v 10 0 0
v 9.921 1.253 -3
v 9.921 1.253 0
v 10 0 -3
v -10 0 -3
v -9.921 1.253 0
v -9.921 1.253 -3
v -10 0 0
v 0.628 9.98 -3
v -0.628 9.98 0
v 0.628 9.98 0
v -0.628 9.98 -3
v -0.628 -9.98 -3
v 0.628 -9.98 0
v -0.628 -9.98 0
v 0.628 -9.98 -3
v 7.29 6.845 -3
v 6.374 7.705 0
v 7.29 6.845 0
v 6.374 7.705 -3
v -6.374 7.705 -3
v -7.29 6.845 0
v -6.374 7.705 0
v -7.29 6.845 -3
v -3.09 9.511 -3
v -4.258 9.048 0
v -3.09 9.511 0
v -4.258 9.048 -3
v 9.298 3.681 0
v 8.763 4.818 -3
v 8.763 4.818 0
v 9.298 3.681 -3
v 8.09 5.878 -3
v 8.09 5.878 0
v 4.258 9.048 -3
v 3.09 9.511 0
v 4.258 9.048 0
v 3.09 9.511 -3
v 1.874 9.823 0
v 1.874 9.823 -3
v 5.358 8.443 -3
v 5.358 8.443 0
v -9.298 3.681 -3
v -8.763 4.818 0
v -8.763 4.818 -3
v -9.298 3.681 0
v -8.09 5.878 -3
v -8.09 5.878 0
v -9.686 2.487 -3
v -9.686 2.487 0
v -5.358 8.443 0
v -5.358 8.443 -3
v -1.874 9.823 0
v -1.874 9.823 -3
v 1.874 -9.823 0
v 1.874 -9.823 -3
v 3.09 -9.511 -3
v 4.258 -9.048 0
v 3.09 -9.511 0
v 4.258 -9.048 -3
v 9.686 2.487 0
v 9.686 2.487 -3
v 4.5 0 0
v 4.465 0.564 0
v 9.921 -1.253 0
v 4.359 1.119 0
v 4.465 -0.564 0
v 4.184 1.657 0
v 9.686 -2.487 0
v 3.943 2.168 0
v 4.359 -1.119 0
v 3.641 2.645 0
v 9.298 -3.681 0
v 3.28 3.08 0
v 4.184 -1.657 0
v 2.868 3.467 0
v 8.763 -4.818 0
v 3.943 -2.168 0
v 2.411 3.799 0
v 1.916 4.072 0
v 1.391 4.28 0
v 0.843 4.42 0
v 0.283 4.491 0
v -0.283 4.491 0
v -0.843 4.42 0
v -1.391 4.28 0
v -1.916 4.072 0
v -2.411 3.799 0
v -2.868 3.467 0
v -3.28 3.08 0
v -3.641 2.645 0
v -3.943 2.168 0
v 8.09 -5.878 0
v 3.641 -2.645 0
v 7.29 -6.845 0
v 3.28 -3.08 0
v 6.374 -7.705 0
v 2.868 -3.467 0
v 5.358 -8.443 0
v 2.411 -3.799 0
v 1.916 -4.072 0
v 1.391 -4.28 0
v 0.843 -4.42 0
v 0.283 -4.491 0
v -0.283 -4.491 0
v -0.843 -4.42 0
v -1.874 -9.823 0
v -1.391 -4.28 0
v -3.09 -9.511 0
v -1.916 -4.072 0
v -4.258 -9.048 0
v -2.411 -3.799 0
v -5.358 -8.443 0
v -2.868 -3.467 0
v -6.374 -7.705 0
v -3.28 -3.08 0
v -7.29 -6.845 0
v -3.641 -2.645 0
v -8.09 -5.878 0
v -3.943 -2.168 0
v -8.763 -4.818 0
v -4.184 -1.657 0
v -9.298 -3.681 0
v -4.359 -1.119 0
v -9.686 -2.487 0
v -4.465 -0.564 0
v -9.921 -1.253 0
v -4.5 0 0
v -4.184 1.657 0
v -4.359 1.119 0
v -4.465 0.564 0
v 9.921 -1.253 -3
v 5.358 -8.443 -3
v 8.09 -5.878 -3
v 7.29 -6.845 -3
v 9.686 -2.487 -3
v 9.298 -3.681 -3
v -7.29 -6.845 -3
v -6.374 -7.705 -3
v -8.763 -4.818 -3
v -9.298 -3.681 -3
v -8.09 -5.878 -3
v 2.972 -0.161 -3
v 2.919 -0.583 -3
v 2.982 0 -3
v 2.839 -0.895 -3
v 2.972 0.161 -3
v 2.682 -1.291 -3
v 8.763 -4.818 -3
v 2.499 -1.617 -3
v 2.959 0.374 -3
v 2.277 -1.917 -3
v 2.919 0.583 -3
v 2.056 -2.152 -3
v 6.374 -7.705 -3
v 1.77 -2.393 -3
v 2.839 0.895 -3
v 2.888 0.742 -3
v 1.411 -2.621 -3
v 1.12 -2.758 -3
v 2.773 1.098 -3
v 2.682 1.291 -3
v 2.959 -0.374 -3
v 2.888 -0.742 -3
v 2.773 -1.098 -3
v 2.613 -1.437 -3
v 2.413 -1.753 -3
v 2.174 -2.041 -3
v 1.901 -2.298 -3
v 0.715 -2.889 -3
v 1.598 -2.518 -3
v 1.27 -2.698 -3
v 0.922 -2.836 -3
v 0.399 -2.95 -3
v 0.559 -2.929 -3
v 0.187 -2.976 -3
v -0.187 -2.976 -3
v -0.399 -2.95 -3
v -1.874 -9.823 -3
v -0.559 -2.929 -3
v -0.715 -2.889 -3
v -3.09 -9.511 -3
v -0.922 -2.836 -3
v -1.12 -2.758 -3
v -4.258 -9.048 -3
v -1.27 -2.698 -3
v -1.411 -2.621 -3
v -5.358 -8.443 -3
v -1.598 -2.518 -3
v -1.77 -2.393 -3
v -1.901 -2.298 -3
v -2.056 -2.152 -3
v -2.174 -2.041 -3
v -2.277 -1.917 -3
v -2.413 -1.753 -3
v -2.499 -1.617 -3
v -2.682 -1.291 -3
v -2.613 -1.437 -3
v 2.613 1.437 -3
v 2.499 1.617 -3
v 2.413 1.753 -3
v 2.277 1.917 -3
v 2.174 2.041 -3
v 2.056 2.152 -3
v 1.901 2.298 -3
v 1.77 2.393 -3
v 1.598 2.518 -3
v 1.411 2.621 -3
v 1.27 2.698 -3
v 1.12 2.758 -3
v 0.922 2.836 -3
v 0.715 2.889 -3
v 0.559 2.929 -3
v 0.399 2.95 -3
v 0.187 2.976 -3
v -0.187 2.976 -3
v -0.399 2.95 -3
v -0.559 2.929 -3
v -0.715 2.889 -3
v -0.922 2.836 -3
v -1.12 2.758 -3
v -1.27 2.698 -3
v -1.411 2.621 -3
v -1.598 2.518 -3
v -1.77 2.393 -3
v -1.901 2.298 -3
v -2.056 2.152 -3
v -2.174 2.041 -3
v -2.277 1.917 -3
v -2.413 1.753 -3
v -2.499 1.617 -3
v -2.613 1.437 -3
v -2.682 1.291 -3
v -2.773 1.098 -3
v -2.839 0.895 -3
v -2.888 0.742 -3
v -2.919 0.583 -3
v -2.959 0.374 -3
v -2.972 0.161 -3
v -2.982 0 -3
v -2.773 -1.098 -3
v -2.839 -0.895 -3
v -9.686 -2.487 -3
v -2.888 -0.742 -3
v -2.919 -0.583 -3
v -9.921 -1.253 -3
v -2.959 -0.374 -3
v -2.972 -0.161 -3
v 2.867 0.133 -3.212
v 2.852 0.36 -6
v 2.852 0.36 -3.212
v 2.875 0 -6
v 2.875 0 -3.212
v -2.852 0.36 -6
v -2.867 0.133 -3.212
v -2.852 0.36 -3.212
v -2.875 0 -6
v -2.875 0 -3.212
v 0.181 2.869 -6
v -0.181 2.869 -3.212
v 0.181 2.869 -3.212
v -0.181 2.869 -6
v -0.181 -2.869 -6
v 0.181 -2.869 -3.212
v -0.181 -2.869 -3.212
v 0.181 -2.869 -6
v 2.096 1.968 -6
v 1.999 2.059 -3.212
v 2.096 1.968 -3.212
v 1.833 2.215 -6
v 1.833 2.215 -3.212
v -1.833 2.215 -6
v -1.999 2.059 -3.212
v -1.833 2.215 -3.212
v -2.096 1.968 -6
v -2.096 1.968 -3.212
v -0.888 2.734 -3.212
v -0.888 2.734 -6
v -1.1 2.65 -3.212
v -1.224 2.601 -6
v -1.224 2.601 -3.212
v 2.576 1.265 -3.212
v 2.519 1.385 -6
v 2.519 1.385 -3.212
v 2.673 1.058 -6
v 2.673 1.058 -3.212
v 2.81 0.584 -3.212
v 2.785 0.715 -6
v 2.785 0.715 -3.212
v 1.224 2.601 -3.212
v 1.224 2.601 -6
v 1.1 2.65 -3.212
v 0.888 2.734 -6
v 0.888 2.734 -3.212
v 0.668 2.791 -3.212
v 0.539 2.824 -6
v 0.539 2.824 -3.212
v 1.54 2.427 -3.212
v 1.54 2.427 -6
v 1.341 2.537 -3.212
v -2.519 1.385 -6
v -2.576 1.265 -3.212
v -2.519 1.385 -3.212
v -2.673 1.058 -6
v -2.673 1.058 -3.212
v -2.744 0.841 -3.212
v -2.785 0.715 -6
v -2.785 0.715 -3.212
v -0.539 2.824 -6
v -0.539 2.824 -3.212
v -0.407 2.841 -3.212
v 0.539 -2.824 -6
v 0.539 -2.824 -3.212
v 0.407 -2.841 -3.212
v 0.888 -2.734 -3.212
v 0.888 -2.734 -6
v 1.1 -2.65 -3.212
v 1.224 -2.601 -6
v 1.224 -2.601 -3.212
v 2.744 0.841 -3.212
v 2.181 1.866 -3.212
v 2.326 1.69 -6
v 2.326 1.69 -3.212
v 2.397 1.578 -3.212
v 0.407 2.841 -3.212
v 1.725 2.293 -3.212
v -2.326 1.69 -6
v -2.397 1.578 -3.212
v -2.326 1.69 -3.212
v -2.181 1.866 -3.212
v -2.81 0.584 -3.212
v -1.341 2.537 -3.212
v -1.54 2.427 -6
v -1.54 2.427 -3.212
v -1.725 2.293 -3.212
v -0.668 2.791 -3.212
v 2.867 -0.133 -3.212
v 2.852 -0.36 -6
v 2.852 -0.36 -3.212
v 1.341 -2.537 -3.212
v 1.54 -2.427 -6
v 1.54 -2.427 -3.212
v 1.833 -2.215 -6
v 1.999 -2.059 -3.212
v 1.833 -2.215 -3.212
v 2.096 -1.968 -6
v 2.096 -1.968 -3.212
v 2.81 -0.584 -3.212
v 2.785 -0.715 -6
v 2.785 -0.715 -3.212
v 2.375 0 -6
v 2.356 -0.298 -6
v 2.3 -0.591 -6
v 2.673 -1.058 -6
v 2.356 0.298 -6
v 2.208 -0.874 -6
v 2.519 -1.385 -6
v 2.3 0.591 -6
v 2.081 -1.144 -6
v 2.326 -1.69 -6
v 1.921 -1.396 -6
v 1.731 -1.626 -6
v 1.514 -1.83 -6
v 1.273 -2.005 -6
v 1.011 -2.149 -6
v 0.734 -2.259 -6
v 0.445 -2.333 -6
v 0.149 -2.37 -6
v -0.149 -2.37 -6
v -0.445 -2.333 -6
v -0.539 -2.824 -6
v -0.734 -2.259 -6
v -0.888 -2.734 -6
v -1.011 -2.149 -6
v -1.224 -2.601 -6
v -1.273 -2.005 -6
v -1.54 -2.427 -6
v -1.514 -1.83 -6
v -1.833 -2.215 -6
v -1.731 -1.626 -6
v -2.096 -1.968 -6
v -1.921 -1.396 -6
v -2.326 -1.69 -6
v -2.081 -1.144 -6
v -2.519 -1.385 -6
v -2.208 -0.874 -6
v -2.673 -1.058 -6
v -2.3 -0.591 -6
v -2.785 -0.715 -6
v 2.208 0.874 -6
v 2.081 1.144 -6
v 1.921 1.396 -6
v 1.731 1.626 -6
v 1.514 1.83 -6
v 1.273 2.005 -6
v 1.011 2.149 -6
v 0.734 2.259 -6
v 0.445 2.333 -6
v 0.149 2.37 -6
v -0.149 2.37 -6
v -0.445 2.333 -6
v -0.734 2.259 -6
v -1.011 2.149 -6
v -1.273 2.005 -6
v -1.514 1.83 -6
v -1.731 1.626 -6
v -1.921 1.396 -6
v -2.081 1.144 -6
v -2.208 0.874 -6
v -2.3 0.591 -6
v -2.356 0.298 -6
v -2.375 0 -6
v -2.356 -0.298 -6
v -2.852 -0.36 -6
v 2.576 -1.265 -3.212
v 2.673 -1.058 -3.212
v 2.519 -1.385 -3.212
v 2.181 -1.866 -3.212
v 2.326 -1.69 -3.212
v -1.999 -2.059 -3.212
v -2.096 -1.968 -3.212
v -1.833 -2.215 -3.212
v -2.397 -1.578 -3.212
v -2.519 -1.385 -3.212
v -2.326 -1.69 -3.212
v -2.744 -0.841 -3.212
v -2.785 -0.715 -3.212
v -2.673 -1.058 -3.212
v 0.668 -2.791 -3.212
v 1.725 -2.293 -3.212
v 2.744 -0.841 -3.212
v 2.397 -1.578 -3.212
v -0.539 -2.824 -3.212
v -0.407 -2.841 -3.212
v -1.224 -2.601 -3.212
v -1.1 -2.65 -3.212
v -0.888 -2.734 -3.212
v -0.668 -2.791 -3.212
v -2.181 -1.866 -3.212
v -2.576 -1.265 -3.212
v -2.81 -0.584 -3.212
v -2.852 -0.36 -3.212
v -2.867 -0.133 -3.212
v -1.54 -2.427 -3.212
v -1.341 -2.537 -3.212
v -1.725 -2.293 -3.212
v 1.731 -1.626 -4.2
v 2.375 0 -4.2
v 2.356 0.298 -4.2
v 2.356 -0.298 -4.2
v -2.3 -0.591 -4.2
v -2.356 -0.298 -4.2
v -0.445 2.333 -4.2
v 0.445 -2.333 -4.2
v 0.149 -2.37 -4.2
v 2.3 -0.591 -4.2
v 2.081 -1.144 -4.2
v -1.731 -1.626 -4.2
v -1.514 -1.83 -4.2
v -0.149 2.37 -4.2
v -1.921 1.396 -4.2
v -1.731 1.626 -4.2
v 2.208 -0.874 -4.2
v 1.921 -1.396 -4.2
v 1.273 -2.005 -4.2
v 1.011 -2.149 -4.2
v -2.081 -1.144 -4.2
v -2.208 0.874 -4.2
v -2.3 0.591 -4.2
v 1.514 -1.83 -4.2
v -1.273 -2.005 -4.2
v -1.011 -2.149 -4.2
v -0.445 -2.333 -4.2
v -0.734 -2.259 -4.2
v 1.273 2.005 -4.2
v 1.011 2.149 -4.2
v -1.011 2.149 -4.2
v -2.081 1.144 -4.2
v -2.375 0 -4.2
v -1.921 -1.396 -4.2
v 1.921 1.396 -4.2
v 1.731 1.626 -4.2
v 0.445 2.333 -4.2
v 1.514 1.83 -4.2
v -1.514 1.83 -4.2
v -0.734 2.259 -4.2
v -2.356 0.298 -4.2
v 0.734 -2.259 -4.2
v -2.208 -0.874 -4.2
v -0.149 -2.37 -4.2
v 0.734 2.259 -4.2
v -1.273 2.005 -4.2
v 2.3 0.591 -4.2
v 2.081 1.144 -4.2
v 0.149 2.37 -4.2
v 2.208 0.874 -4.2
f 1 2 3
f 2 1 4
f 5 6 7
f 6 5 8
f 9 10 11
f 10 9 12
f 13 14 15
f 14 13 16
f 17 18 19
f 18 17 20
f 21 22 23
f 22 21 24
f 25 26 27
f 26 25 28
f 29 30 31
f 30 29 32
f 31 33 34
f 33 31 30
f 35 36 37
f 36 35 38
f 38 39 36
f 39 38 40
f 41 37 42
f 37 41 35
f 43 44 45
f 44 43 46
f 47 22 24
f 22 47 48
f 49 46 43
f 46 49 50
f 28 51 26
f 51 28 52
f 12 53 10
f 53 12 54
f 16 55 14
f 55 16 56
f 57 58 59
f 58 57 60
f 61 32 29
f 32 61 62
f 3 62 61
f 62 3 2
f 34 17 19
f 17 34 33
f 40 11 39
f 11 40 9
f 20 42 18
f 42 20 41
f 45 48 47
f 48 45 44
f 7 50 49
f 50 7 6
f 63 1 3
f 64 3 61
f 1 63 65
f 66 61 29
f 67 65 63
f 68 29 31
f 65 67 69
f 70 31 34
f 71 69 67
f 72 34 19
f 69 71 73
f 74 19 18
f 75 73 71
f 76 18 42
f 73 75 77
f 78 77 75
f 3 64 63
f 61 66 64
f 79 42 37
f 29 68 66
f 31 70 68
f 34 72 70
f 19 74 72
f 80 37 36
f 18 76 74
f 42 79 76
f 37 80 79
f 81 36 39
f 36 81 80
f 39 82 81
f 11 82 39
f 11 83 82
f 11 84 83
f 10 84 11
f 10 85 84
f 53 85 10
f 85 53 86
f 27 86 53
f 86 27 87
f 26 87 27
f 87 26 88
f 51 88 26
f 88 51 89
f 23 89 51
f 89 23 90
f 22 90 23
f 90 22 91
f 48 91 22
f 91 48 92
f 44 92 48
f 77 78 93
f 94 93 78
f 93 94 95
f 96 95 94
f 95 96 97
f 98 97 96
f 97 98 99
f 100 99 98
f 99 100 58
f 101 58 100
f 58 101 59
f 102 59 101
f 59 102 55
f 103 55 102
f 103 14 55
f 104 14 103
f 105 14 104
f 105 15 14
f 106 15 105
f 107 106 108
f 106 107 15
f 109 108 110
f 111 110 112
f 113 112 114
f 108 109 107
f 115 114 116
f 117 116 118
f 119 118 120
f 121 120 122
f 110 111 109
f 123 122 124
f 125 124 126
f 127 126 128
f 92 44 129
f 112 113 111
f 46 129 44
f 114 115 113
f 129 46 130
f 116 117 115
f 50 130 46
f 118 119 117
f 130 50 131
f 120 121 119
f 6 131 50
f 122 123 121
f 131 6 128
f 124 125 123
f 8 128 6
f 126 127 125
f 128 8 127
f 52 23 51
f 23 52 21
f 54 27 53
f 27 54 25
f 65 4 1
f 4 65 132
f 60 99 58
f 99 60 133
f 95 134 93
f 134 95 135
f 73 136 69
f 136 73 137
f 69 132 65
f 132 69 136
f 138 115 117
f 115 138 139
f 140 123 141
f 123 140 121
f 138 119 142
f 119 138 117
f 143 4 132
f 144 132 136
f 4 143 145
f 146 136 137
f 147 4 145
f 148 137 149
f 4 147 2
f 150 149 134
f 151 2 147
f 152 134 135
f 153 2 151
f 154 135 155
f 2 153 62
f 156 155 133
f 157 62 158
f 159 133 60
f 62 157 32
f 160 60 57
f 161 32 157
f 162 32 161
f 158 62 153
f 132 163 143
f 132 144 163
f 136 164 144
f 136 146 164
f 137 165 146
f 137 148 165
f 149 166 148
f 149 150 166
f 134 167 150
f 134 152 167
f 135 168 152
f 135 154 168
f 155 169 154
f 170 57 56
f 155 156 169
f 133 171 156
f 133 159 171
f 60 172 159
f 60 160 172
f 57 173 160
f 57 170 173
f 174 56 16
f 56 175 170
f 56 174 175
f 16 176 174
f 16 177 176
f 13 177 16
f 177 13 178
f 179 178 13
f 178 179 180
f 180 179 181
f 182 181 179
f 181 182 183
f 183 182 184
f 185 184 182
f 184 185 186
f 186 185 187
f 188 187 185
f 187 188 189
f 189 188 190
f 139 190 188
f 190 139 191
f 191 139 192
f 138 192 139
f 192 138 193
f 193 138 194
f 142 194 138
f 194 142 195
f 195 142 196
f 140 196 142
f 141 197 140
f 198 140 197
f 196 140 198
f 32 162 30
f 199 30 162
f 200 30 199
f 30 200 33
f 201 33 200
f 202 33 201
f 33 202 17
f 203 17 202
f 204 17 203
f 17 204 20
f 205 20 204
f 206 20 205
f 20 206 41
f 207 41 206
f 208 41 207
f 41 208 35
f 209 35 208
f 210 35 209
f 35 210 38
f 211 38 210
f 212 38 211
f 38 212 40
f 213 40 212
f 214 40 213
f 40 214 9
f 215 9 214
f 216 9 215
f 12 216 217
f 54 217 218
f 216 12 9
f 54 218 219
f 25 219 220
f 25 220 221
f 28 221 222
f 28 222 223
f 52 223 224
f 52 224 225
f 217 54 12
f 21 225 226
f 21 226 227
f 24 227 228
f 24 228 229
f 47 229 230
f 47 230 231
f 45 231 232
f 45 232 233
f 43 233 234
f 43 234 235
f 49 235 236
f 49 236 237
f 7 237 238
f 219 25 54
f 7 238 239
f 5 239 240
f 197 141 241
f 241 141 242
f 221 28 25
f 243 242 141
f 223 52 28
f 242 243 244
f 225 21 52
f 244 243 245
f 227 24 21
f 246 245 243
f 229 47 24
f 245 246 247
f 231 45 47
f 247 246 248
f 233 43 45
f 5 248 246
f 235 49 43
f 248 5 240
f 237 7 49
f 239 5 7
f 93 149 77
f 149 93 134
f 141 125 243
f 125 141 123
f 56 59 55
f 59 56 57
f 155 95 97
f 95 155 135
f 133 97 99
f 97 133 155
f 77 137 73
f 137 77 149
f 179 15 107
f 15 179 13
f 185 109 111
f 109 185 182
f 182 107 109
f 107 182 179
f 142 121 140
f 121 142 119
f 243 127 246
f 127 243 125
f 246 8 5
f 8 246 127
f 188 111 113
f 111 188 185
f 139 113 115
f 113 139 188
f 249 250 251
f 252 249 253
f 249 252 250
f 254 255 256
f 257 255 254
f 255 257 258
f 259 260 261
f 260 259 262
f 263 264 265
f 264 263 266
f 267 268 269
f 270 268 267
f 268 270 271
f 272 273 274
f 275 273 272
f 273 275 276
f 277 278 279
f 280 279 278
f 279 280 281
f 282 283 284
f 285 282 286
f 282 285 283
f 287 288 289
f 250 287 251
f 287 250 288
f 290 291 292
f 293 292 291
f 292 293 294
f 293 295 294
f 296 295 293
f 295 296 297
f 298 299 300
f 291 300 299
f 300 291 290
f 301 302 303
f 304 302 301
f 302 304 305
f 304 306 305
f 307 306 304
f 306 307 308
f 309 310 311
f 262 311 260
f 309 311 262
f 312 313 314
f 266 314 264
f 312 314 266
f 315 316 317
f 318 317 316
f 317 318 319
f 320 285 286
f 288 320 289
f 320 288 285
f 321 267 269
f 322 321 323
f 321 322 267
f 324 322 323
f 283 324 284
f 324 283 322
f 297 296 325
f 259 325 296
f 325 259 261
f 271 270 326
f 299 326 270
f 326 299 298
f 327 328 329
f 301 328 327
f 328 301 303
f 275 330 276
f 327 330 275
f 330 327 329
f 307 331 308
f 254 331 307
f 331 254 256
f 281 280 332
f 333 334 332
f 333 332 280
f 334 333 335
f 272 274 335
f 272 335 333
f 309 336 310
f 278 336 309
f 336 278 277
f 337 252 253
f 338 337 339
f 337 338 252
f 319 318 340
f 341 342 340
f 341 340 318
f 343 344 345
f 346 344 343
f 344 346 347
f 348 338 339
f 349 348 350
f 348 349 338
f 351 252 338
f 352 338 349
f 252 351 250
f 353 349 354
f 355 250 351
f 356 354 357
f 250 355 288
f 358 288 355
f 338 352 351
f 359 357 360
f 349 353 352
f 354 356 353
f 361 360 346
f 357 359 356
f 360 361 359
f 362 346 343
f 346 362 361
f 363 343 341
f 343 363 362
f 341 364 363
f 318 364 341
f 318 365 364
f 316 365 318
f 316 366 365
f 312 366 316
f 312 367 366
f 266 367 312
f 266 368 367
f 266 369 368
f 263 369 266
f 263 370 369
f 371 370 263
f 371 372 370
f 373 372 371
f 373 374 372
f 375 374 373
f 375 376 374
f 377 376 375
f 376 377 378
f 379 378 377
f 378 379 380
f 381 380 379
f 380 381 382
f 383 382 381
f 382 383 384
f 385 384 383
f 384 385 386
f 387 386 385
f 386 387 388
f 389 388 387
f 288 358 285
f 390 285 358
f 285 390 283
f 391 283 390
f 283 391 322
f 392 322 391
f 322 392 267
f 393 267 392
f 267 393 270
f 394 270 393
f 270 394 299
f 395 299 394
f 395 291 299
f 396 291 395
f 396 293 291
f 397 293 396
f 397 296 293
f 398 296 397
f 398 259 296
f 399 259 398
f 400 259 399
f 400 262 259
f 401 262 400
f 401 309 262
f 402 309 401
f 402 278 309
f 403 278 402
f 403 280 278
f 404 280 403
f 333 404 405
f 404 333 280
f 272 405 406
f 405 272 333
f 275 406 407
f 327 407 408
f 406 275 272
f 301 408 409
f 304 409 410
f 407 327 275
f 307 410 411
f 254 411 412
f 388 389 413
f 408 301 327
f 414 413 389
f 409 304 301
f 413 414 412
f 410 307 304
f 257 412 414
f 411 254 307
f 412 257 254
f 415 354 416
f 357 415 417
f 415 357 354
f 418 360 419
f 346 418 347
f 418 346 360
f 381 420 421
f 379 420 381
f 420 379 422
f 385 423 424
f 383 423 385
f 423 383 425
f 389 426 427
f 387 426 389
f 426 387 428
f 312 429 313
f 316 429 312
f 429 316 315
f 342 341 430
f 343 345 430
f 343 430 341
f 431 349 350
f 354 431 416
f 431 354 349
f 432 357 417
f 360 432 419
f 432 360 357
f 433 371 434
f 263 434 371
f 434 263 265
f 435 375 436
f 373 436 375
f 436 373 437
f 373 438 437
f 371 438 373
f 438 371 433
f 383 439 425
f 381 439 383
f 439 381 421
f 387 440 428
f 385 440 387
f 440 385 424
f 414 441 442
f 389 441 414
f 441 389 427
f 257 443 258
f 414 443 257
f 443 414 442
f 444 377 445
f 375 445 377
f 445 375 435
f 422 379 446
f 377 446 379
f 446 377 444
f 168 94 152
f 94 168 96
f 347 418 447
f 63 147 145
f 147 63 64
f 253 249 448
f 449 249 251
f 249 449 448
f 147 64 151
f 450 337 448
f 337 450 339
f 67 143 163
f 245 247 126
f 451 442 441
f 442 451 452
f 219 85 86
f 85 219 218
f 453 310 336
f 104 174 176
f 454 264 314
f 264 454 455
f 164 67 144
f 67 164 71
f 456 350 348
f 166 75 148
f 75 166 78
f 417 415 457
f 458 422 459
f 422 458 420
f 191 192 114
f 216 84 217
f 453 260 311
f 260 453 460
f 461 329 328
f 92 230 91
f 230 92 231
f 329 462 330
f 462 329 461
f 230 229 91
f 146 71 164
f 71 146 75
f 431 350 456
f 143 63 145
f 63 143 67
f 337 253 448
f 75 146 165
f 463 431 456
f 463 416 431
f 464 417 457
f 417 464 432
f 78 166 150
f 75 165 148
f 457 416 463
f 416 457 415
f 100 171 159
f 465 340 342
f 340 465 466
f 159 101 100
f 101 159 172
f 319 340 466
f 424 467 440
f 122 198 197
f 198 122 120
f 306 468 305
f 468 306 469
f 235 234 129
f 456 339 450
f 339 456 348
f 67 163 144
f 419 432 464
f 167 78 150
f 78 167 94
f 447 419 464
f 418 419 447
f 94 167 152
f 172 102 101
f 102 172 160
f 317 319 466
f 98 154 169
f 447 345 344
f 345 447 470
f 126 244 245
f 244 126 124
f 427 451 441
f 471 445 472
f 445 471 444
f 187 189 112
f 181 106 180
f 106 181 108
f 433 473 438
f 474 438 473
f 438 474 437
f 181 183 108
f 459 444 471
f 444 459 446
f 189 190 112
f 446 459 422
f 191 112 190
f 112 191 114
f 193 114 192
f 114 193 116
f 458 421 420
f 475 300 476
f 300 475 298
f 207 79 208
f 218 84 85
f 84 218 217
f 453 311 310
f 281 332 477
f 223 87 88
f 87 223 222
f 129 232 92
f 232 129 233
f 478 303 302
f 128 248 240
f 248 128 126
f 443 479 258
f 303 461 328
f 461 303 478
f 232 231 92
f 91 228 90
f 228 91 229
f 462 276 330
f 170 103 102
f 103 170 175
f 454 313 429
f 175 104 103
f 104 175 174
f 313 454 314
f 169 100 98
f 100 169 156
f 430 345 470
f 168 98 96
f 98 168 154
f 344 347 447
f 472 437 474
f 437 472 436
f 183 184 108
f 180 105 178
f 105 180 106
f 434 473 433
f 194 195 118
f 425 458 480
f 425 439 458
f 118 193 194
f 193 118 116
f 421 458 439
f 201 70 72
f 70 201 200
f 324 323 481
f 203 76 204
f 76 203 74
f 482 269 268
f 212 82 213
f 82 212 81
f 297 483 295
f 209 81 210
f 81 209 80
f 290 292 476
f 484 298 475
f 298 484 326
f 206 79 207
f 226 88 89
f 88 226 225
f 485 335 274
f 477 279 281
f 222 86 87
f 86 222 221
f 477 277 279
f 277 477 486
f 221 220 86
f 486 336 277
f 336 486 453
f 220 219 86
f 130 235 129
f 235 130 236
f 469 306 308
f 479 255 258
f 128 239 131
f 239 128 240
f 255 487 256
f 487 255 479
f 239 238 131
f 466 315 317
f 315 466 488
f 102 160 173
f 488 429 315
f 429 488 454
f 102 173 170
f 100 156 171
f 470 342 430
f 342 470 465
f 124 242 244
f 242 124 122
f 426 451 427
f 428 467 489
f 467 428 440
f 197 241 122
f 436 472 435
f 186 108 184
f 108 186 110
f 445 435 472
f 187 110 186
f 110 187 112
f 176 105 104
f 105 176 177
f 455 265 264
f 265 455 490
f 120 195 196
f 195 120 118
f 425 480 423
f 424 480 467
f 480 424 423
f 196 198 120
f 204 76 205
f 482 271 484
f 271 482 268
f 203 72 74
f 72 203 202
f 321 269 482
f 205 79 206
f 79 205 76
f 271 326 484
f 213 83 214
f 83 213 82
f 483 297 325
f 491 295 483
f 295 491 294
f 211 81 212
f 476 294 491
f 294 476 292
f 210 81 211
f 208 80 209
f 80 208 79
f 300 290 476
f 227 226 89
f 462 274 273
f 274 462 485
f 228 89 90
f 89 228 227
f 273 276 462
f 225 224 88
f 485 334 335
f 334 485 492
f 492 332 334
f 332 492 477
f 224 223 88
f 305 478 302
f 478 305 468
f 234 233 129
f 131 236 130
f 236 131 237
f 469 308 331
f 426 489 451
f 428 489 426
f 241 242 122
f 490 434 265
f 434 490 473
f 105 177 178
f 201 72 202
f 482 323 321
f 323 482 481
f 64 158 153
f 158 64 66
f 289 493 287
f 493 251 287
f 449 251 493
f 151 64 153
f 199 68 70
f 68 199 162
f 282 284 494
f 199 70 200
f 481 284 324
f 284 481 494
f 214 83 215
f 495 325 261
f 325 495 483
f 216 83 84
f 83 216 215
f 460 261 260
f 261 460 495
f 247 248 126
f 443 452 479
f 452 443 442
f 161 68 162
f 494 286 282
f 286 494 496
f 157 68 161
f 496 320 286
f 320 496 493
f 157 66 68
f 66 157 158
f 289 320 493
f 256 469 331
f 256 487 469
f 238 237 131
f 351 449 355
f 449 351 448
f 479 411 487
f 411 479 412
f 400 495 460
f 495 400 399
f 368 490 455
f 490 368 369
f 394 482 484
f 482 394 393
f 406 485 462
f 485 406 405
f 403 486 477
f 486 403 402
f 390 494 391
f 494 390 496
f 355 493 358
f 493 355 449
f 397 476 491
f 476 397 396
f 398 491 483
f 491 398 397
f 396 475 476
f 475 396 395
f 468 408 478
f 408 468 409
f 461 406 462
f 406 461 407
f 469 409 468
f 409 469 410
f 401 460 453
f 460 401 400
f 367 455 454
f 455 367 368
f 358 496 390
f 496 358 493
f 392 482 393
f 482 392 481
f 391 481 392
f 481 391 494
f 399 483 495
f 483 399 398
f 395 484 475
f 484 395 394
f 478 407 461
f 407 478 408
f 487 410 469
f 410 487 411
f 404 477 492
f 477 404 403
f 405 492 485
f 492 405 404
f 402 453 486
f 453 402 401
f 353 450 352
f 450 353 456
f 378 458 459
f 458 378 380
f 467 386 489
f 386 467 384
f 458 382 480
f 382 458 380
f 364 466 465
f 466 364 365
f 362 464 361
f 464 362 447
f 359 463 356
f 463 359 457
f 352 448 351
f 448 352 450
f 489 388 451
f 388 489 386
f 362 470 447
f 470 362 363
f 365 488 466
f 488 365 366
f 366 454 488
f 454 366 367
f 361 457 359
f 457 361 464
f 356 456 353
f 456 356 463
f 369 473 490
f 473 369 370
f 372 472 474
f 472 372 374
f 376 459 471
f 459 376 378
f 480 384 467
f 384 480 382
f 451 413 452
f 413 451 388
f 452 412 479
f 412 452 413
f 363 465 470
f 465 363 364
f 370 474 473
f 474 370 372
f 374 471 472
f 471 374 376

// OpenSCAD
$fn = 50;

difference() {
	union() {
		translate(v = [0, 0, -3.0]) {
			cylinder(h = 3, r = 10.0);
		}
		#translate(v = [0, 0, -6.0]) {
			cylinder(h = 6, r = 2.875);
		}
	}
	union() {
		translate(v = [0, 0, 0]) {
			rotate(a = [0, 0, 0]) {
				difference() {
					union() {
						translate(v = [0, 0, -6.0]) {
							cylinder(h = 6, r = 2.25);
						}
						translate(v = [0, 0, -4.2]) {
							cylinder(h = 4.2, r1 = 2.375, r2 = 4.5);
						}
						translate(v = [0, 0, -6.0]) {
							cylinder(h = 6, r = 2.375);
						}
						translate(v = [0, 0, -6.0]) {
							cylinder(h = 6, r = 2.25);
						}
					}
					union();
				}
			}
		}
	}
}
